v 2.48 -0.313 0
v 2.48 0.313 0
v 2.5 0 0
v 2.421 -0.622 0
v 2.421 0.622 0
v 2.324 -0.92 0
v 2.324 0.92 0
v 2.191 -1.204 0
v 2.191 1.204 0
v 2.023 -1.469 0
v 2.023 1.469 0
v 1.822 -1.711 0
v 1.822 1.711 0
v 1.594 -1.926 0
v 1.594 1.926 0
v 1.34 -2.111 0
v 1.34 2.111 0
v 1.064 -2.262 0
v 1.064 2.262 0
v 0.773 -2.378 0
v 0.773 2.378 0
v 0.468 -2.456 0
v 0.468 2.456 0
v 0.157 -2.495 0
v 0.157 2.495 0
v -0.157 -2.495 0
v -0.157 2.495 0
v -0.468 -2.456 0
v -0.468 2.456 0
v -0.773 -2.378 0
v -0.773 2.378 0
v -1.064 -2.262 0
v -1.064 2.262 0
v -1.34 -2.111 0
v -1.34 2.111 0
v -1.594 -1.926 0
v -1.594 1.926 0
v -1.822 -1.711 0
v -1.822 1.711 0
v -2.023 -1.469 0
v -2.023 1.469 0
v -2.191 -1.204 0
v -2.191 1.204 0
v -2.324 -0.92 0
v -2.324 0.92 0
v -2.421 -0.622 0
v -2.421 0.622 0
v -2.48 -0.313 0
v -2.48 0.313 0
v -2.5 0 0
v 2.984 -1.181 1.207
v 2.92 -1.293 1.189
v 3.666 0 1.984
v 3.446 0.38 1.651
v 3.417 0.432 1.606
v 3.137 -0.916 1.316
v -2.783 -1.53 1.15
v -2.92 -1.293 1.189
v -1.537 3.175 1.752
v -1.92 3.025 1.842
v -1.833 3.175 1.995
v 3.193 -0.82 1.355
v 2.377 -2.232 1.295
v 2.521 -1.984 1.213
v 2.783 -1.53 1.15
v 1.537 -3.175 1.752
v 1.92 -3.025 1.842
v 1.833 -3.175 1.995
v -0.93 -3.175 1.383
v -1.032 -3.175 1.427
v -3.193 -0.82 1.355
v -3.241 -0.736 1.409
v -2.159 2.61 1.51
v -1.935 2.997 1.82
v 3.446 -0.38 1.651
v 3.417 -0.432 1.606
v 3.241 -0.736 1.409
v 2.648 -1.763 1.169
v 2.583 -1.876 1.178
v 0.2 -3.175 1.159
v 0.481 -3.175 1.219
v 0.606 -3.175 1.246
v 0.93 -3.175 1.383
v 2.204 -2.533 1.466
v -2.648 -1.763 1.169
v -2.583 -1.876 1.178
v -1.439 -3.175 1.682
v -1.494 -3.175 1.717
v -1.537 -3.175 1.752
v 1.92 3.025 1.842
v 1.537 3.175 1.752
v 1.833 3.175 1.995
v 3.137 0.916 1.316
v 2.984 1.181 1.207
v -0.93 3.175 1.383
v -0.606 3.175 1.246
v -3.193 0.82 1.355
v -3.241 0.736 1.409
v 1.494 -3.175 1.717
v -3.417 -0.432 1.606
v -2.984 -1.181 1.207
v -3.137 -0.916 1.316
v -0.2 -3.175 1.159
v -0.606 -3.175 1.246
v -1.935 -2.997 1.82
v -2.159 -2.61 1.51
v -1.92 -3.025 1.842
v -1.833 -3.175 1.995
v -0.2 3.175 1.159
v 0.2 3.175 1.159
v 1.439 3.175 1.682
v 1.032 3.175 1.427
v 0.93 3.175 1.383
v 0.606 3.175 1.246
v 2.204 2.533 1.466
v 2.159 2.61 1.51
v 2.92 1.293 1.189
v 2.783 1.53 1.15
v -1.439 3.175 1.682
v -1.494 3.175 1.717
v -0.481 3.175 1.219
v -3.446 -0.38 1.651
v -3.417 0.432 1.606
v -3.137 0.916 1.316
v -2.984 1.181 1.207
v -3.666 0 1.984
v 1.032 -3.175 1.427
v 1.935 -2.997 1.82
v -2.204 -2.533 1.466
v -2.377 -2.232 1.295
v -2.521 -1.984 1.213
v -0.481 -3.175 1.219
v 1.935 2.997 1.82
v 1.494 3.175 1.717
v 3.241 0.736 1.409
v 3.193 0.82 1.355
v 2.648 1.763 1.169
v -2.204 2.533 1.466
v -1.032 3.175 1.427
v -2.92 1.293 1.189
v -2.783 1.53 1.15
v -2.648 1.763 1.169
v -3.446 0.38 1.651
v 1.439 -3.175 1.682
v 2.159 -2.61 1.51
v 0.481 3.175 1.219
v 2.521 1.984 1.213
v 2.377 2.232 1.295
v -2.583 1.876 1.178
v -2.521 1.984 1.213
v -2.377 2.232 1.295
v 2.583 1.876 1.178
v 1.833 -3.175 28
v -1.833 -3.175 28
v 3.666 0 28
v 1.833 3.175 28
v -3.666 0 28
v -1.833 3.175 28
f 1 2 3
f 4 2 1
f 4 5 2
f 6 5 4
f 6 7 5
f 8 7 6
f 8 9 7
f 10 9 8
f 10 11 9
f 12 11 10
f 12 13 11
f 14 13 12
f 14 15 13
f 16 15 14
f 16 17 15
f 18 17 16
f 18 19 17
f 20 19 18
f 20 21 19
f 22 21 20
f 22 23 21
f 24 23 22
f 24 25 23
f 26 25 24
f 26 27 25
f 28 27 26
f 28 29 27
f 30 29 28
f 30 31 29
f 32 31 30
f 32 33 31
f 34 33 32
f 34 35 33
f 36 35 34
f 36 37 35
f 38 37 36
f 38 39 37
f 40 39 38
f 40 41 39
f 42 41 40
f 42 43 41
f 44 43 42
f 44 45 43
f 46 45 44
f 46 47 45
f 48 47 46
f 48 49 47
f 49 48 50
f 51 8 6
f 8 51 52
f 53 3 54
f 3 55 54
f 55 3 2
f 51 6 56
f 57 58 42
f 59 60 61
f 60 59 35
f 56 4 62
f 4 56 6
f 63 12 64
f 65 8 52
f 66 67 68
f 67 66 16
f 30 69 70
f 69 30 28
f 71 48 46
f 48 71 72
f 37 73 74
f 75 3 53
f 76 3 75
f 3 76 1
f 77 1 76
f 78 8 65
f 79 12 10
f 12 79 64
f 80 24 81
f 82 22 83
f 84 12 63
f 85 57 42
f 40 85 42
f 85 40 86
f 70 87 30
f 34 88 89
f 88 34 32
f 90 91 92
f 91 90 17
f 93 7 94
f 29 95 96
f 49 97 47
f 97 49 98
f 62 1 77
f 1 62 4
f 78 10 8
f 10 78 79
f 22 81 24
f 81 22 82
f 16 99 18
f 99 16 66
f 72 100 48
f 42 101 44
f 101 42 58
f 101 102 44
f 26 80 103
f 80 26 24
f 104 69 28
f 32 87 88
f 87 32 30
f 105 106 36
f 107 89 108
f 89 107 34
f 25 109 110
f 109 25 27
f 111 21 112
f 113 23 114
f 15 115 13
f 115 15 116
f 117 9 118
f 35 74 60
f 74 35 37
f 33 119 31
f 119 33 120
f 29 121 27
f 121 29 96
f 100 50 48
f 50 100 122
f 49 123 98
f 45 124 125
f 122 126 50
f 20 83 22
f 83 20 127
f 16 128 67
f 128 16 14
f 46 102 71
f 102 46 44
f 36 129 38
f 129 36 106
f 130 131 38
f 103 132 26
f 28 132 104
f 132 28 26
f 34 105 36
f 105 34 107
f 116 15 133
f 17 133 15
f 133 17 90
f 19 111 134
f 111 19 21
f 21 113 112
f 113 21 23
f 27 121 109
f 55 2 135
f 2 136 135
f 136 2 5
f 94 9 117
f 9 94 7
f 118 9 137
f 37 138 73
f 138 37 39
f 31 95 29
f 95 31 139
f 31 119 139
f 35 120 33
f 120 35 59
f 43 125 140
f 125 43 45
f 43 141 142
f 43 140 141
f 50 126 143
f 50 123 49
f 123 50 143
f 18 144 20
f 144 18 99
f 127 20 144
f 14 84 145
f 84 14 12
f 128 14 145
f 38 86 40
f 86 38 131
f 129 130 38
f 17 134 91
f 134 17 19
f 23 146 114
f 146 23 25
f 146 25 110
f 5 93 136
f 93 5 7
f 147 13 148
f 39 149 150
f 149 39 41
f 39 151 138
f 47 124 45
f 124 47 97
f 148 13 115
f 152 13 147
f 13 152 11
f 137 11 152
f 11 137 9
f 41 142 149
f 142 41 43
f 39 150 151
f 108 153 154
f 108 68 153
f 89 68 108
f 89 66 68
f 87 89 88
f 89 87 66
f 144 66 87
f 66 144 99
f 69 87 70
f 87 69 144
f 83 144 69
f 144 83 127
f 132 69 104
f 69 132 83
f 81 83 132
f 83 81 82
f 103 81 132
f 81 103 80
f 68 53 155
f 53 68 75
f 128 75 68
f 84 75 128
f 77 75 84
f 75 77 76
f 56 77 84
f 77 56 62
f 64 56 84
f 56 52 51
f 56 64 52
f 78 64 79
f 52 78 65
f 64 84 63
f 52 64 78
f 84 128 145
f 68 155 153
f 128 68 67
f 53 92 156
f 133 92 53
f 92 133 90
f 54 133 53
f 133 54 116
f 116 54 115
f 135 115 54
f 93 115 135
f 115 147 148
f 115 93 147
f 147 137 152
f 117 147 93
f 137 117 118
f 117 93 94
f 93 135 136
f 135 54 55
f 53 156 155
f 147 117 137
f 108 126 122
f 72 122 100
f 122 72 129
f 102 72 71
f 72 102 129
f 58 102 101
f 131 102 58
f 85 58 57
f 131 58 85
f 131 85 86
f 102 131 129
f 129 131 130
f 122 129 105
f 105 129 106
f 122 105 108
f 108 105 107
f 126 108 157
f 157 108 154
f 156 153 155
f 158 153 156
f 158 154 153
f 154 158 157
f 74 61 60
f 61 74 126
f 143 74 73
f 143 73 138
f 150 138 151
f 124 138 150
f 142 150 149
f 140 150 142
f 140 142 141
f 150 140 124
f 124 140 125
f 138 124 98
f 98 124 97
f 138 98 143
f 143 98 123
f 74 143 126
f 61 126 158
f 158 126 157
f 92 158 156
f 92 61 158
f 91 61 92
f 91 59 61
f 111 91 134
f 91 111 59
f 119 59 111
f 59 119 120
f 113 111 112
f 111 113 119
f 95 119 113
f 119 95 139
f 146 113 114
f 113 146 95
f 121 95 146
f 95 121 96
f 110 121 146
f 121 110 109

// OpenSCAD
$fn = 50;


difference() {
	union() {
		translate(v = [0, 0, 0]) {
			rotate(a = [0, 0, 0]) {
				difference() {
					union() {
						linear_extrude(height = 28) {
							polygon(points = [[3.6658550000, 0.0000000000], [1.8329275000, 3.1747235566], [-1.8329275000, 3.1747235566], [-3.6658550000, 0.0000000000], [-1.8329275000, -3.1747235566], [1.8329275000, -3.1747235566]]);
						}
					}
					union() {
						difference() {
							cylinder(h = 2, r1 = 10.5000000000, r2 = 11.6750000000);
							cylinder(h = 2, r1 = 2.5000000000, r2 = 3.6750000000);
						}
					}
				}
			}
		}
	}
	union();
}
